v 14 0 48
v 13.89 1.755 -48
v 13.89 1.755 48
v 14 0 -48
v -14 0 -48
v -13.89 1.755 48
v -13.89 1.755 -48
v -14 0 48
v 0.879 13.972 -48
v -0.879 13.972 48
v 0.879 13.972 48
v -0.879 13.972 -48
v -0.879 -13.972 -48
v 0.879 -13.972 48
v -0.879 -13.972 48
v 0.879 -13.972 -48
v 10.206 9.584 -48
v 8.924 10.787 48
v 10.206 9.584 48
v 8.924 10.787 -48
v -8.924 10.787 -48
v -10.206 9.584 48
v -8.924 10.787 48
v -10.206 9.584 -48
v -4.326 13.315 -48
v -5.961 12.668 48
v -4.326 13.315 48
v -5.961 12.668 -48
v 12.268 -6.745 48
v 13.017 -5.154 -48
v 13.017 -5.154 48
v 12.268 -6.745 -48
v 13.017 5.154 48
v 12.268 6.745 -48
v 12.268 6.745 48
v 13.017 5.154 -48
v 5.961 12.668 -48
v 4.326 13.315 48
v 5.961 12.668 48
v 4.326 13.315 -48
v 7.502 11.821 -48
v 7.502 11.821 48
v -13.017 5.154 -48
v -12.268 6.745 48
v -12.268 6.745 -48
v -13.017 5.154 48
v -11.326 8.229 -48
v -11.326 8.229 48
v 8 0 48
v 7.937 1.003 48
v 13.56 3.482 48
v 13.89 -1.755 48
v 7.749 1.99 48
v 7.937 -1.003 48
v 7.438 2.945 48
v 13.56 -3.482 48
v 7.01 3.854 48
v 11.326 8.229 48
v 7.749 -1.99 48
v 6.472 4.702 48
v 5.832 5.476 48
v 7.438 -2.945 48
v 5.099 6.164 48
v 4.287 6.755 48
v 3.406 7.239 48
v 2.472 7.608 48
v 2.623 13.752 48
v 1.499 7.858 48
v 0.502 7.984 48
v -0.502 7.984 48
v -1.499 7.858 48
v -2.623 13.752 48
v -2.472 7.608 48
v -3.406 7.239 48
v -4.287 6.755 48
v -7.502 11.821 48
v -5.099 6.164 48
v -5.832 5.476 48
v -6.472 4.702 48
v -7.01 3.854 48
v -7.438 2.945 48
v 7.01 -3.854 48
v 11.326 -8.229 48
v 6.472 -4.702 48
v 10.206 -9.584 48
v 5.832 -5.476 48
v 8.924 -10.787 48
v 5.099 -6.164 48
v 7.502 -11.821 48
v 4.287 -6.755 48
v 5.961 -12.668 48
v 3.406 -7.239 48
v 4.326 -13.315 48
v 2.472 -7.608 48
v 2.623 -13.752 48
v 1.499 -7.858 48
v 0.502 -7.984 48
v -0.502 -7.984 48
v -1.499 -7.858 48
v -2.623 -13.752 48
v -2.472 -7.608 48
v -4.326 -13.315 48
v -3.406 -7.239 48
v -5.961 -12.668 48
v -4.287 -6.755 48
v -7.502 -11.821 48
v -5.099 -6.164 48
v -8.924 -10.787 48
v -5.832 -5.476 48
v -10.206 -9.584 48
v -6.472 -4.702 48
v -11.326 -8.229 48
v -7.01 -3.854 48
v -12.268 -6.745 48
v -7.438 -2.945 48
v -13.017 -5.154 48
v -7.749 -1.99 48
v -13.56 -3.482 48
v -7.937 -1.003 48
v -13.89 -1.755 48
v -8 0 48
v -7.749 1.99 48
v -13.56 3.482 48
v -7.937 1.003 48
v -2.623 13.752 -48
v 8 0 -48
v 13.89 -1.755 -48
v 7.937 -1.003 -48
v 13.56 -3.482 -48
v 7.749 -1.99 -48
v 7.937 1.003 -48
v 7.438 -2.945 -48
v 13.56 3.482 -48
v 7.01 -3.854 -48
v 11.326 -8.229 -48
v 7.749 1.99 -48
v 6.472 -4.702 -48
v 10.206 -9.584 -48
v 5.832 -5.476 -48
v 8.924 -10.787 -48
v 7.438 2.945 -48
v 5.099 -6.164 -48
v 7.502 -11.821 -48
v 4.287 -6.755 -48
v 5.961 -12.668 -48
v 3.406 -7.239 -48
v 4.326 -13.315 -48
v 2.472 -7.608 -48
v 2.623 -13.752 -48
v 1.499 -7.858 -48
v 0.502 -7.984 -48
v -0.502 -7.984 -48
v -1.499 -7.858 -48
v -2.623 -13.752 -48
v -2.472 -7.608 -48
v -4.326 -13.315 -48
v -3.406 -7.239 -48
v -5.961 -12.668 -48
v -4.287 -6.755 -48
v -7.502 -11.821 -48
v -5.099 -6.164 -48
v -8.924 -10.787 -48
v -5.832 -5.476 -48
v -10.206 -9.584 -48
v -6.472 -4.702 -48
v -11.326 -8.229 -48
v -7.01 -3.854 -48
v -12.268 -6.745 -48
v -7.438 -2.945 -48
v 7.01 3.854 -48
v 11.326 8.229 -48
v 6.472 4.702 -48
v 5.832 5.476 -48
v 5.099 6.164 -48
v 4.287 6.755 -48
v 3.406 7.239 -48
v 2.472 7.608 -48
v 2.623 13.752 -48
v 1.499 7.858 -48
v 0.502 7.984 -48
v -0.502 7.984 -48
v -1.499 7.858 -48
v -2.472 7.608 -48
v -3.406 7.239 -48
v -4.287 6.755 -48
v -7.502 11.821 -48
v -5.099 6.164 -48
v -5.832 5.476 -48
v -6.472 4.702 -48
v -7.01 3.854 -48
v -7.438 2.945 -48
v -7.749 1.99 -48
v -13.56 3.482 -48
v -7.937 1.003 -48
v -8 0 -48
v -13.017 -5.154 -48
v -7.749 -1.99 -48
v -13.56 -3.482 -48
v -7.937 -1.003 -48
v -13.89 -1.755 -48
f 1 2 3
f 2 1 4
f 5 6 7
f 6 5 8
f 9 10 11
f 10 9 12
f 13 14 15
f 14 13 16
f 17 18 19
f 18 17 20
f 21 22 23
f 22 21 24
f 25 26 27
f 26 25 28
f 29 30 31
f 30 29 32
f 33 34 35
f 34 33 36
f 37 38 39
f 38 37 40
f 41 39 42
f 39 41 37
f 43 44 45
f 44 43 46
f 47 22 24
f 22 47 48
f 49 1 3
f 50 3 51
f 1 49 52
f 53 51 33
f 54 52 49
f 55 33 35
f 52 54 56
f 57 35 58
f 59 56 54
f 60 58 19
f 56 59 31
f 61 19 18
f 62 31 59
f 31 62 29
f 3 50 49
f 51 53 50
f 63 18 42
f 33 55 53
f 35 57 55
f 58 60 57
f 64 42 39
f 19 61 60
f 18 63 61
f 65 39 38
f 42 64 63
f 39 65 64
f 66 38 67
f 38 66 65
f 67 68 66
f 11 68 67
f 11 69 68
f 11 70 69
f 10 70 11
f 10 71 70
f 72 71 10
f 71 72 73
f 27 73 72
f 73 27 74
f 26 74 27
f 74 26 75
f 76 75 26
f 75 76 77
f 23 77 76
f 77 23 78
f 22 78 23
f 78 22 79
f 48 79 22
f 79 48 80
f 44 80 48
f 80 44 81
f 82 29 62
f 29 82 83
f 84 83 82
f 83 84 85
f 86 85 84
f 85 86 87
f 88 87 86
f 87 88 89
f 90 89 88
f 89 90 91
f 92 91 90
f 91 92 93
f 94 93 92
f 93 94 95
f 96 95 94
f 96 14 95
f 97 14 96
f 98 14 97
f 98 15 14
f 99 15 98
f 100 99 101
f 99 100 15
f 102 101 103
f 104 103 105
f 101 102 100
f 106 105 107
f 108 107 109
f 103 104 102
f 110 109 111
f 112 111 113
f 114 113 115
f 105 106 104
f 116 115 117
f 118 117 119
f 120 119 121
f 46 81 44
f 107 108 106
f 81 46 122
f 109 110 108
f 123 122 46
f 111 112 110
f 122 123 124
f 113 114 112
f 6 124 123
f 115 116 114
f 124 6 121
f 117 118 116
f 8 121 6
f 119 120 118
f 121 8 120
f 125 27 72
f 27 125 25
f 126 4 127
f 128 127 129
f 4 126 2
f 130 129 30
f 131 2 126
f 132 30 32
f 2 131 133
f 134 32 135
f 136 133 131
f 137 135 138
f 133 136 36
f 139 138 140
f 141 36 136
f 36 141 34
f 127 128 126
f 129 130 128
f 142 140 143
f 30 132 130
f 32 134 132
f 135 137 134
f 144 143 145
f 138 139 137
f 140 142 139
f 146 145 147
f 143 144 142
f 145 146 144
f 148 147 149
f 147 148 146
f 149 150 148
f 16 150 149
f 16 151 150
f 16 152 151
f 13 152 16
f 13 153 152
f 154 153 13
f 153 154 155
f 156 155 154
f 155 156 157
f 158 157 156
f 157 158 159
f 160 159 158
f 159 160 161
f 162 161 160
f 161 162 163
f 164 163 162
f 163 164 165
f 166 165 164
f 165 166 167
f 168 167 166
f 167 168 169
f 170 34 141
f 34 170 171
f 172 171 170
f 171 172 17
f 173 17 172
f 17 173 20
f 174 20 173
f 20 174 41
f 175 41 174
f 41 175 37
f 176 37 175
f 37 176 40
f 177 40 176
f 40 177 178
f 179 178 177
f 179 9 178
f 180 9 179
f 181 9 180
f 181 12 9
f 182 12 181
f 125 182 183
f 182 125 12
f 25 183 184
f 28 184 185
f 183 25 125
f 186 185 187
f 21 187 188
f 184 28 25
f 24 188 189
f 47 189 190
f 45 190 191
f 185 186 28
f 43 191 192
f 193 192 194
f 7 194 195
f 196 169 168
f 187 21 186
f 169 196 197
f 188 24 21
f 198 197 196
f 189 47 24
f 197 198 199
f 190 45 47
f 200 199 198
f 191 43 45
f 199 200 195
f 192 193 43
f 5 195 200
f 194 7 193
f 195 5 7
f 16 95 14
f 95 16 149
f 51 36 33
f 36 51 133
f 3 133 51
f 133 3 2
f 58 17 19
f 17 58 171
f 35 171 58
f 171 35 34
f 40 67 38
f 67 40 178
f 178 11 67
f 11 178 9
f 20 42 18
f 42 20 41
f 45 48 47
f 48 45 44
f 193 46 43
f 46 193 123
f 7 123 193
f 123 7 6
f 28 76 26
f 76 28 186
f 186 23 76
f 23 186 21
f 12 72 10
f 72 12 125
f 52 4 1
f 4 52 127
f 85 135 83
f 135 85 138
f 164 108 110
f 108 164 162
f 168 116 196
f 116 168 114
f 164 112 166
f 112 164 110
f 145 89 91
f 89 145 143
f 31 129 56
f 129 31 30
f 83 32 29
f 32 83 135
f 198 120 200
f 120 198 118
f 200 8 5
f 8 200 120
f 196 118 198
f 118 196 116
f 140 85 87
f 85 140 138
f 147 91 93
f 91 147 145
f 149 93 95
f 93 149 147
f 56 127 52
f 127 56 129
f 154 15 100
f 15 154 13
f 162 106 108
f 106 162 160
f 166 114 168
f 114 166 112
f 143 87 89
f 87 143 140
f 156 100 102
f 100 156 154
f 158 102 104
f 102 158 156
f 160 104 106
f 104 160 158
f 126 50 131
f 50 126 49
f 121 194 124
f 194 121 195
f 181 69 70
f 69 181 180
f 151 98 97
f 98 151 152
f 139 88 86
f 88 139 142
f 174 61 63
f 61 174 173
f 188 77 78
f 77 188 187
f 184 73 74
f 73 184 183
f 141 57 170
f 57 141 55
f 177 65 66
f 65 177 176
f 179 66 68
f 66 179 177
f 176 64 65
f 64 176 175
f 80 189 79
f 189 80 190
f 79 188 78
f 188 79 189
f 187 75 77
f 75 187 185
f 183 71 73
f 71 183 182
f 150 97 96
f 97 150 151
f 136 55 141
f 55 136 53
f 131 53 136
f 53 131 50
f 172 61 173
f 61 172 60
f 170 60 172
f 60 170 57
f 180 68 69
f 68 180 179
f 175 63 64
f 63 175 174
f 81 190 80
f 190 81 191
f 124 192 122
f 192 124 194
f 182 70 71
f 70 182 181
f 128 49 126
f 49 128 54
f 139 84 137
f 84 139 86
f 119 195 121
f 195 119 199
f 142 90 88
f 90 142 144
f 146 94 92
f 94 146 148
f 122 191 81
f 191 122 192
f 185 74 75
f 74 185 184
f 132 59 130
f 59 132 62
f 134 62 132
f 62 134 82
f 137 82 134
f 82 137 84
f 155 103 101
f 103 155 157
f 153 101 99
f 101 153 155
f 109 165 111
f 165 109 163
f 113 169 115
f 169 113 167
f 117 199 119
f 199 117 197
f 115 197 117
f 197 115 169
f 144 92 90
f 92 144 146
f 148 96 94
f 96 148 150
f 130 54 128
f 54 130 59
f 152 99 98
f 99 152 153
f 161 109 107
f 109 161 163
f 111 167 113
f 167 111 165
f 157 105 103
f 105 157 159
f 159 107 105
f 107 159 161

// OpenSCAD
$fn = 50;


difference() {
	union() {
		translate(v = [0, 0, -48.0000000000]) {
			cylinder(h = 96, r = 14.0000000000);
		}
	}
	union() {
		translate(v = [0, 0, -100.0000000000]) {
			cylinder(h = 200, r = 8);
		}
	}
}
